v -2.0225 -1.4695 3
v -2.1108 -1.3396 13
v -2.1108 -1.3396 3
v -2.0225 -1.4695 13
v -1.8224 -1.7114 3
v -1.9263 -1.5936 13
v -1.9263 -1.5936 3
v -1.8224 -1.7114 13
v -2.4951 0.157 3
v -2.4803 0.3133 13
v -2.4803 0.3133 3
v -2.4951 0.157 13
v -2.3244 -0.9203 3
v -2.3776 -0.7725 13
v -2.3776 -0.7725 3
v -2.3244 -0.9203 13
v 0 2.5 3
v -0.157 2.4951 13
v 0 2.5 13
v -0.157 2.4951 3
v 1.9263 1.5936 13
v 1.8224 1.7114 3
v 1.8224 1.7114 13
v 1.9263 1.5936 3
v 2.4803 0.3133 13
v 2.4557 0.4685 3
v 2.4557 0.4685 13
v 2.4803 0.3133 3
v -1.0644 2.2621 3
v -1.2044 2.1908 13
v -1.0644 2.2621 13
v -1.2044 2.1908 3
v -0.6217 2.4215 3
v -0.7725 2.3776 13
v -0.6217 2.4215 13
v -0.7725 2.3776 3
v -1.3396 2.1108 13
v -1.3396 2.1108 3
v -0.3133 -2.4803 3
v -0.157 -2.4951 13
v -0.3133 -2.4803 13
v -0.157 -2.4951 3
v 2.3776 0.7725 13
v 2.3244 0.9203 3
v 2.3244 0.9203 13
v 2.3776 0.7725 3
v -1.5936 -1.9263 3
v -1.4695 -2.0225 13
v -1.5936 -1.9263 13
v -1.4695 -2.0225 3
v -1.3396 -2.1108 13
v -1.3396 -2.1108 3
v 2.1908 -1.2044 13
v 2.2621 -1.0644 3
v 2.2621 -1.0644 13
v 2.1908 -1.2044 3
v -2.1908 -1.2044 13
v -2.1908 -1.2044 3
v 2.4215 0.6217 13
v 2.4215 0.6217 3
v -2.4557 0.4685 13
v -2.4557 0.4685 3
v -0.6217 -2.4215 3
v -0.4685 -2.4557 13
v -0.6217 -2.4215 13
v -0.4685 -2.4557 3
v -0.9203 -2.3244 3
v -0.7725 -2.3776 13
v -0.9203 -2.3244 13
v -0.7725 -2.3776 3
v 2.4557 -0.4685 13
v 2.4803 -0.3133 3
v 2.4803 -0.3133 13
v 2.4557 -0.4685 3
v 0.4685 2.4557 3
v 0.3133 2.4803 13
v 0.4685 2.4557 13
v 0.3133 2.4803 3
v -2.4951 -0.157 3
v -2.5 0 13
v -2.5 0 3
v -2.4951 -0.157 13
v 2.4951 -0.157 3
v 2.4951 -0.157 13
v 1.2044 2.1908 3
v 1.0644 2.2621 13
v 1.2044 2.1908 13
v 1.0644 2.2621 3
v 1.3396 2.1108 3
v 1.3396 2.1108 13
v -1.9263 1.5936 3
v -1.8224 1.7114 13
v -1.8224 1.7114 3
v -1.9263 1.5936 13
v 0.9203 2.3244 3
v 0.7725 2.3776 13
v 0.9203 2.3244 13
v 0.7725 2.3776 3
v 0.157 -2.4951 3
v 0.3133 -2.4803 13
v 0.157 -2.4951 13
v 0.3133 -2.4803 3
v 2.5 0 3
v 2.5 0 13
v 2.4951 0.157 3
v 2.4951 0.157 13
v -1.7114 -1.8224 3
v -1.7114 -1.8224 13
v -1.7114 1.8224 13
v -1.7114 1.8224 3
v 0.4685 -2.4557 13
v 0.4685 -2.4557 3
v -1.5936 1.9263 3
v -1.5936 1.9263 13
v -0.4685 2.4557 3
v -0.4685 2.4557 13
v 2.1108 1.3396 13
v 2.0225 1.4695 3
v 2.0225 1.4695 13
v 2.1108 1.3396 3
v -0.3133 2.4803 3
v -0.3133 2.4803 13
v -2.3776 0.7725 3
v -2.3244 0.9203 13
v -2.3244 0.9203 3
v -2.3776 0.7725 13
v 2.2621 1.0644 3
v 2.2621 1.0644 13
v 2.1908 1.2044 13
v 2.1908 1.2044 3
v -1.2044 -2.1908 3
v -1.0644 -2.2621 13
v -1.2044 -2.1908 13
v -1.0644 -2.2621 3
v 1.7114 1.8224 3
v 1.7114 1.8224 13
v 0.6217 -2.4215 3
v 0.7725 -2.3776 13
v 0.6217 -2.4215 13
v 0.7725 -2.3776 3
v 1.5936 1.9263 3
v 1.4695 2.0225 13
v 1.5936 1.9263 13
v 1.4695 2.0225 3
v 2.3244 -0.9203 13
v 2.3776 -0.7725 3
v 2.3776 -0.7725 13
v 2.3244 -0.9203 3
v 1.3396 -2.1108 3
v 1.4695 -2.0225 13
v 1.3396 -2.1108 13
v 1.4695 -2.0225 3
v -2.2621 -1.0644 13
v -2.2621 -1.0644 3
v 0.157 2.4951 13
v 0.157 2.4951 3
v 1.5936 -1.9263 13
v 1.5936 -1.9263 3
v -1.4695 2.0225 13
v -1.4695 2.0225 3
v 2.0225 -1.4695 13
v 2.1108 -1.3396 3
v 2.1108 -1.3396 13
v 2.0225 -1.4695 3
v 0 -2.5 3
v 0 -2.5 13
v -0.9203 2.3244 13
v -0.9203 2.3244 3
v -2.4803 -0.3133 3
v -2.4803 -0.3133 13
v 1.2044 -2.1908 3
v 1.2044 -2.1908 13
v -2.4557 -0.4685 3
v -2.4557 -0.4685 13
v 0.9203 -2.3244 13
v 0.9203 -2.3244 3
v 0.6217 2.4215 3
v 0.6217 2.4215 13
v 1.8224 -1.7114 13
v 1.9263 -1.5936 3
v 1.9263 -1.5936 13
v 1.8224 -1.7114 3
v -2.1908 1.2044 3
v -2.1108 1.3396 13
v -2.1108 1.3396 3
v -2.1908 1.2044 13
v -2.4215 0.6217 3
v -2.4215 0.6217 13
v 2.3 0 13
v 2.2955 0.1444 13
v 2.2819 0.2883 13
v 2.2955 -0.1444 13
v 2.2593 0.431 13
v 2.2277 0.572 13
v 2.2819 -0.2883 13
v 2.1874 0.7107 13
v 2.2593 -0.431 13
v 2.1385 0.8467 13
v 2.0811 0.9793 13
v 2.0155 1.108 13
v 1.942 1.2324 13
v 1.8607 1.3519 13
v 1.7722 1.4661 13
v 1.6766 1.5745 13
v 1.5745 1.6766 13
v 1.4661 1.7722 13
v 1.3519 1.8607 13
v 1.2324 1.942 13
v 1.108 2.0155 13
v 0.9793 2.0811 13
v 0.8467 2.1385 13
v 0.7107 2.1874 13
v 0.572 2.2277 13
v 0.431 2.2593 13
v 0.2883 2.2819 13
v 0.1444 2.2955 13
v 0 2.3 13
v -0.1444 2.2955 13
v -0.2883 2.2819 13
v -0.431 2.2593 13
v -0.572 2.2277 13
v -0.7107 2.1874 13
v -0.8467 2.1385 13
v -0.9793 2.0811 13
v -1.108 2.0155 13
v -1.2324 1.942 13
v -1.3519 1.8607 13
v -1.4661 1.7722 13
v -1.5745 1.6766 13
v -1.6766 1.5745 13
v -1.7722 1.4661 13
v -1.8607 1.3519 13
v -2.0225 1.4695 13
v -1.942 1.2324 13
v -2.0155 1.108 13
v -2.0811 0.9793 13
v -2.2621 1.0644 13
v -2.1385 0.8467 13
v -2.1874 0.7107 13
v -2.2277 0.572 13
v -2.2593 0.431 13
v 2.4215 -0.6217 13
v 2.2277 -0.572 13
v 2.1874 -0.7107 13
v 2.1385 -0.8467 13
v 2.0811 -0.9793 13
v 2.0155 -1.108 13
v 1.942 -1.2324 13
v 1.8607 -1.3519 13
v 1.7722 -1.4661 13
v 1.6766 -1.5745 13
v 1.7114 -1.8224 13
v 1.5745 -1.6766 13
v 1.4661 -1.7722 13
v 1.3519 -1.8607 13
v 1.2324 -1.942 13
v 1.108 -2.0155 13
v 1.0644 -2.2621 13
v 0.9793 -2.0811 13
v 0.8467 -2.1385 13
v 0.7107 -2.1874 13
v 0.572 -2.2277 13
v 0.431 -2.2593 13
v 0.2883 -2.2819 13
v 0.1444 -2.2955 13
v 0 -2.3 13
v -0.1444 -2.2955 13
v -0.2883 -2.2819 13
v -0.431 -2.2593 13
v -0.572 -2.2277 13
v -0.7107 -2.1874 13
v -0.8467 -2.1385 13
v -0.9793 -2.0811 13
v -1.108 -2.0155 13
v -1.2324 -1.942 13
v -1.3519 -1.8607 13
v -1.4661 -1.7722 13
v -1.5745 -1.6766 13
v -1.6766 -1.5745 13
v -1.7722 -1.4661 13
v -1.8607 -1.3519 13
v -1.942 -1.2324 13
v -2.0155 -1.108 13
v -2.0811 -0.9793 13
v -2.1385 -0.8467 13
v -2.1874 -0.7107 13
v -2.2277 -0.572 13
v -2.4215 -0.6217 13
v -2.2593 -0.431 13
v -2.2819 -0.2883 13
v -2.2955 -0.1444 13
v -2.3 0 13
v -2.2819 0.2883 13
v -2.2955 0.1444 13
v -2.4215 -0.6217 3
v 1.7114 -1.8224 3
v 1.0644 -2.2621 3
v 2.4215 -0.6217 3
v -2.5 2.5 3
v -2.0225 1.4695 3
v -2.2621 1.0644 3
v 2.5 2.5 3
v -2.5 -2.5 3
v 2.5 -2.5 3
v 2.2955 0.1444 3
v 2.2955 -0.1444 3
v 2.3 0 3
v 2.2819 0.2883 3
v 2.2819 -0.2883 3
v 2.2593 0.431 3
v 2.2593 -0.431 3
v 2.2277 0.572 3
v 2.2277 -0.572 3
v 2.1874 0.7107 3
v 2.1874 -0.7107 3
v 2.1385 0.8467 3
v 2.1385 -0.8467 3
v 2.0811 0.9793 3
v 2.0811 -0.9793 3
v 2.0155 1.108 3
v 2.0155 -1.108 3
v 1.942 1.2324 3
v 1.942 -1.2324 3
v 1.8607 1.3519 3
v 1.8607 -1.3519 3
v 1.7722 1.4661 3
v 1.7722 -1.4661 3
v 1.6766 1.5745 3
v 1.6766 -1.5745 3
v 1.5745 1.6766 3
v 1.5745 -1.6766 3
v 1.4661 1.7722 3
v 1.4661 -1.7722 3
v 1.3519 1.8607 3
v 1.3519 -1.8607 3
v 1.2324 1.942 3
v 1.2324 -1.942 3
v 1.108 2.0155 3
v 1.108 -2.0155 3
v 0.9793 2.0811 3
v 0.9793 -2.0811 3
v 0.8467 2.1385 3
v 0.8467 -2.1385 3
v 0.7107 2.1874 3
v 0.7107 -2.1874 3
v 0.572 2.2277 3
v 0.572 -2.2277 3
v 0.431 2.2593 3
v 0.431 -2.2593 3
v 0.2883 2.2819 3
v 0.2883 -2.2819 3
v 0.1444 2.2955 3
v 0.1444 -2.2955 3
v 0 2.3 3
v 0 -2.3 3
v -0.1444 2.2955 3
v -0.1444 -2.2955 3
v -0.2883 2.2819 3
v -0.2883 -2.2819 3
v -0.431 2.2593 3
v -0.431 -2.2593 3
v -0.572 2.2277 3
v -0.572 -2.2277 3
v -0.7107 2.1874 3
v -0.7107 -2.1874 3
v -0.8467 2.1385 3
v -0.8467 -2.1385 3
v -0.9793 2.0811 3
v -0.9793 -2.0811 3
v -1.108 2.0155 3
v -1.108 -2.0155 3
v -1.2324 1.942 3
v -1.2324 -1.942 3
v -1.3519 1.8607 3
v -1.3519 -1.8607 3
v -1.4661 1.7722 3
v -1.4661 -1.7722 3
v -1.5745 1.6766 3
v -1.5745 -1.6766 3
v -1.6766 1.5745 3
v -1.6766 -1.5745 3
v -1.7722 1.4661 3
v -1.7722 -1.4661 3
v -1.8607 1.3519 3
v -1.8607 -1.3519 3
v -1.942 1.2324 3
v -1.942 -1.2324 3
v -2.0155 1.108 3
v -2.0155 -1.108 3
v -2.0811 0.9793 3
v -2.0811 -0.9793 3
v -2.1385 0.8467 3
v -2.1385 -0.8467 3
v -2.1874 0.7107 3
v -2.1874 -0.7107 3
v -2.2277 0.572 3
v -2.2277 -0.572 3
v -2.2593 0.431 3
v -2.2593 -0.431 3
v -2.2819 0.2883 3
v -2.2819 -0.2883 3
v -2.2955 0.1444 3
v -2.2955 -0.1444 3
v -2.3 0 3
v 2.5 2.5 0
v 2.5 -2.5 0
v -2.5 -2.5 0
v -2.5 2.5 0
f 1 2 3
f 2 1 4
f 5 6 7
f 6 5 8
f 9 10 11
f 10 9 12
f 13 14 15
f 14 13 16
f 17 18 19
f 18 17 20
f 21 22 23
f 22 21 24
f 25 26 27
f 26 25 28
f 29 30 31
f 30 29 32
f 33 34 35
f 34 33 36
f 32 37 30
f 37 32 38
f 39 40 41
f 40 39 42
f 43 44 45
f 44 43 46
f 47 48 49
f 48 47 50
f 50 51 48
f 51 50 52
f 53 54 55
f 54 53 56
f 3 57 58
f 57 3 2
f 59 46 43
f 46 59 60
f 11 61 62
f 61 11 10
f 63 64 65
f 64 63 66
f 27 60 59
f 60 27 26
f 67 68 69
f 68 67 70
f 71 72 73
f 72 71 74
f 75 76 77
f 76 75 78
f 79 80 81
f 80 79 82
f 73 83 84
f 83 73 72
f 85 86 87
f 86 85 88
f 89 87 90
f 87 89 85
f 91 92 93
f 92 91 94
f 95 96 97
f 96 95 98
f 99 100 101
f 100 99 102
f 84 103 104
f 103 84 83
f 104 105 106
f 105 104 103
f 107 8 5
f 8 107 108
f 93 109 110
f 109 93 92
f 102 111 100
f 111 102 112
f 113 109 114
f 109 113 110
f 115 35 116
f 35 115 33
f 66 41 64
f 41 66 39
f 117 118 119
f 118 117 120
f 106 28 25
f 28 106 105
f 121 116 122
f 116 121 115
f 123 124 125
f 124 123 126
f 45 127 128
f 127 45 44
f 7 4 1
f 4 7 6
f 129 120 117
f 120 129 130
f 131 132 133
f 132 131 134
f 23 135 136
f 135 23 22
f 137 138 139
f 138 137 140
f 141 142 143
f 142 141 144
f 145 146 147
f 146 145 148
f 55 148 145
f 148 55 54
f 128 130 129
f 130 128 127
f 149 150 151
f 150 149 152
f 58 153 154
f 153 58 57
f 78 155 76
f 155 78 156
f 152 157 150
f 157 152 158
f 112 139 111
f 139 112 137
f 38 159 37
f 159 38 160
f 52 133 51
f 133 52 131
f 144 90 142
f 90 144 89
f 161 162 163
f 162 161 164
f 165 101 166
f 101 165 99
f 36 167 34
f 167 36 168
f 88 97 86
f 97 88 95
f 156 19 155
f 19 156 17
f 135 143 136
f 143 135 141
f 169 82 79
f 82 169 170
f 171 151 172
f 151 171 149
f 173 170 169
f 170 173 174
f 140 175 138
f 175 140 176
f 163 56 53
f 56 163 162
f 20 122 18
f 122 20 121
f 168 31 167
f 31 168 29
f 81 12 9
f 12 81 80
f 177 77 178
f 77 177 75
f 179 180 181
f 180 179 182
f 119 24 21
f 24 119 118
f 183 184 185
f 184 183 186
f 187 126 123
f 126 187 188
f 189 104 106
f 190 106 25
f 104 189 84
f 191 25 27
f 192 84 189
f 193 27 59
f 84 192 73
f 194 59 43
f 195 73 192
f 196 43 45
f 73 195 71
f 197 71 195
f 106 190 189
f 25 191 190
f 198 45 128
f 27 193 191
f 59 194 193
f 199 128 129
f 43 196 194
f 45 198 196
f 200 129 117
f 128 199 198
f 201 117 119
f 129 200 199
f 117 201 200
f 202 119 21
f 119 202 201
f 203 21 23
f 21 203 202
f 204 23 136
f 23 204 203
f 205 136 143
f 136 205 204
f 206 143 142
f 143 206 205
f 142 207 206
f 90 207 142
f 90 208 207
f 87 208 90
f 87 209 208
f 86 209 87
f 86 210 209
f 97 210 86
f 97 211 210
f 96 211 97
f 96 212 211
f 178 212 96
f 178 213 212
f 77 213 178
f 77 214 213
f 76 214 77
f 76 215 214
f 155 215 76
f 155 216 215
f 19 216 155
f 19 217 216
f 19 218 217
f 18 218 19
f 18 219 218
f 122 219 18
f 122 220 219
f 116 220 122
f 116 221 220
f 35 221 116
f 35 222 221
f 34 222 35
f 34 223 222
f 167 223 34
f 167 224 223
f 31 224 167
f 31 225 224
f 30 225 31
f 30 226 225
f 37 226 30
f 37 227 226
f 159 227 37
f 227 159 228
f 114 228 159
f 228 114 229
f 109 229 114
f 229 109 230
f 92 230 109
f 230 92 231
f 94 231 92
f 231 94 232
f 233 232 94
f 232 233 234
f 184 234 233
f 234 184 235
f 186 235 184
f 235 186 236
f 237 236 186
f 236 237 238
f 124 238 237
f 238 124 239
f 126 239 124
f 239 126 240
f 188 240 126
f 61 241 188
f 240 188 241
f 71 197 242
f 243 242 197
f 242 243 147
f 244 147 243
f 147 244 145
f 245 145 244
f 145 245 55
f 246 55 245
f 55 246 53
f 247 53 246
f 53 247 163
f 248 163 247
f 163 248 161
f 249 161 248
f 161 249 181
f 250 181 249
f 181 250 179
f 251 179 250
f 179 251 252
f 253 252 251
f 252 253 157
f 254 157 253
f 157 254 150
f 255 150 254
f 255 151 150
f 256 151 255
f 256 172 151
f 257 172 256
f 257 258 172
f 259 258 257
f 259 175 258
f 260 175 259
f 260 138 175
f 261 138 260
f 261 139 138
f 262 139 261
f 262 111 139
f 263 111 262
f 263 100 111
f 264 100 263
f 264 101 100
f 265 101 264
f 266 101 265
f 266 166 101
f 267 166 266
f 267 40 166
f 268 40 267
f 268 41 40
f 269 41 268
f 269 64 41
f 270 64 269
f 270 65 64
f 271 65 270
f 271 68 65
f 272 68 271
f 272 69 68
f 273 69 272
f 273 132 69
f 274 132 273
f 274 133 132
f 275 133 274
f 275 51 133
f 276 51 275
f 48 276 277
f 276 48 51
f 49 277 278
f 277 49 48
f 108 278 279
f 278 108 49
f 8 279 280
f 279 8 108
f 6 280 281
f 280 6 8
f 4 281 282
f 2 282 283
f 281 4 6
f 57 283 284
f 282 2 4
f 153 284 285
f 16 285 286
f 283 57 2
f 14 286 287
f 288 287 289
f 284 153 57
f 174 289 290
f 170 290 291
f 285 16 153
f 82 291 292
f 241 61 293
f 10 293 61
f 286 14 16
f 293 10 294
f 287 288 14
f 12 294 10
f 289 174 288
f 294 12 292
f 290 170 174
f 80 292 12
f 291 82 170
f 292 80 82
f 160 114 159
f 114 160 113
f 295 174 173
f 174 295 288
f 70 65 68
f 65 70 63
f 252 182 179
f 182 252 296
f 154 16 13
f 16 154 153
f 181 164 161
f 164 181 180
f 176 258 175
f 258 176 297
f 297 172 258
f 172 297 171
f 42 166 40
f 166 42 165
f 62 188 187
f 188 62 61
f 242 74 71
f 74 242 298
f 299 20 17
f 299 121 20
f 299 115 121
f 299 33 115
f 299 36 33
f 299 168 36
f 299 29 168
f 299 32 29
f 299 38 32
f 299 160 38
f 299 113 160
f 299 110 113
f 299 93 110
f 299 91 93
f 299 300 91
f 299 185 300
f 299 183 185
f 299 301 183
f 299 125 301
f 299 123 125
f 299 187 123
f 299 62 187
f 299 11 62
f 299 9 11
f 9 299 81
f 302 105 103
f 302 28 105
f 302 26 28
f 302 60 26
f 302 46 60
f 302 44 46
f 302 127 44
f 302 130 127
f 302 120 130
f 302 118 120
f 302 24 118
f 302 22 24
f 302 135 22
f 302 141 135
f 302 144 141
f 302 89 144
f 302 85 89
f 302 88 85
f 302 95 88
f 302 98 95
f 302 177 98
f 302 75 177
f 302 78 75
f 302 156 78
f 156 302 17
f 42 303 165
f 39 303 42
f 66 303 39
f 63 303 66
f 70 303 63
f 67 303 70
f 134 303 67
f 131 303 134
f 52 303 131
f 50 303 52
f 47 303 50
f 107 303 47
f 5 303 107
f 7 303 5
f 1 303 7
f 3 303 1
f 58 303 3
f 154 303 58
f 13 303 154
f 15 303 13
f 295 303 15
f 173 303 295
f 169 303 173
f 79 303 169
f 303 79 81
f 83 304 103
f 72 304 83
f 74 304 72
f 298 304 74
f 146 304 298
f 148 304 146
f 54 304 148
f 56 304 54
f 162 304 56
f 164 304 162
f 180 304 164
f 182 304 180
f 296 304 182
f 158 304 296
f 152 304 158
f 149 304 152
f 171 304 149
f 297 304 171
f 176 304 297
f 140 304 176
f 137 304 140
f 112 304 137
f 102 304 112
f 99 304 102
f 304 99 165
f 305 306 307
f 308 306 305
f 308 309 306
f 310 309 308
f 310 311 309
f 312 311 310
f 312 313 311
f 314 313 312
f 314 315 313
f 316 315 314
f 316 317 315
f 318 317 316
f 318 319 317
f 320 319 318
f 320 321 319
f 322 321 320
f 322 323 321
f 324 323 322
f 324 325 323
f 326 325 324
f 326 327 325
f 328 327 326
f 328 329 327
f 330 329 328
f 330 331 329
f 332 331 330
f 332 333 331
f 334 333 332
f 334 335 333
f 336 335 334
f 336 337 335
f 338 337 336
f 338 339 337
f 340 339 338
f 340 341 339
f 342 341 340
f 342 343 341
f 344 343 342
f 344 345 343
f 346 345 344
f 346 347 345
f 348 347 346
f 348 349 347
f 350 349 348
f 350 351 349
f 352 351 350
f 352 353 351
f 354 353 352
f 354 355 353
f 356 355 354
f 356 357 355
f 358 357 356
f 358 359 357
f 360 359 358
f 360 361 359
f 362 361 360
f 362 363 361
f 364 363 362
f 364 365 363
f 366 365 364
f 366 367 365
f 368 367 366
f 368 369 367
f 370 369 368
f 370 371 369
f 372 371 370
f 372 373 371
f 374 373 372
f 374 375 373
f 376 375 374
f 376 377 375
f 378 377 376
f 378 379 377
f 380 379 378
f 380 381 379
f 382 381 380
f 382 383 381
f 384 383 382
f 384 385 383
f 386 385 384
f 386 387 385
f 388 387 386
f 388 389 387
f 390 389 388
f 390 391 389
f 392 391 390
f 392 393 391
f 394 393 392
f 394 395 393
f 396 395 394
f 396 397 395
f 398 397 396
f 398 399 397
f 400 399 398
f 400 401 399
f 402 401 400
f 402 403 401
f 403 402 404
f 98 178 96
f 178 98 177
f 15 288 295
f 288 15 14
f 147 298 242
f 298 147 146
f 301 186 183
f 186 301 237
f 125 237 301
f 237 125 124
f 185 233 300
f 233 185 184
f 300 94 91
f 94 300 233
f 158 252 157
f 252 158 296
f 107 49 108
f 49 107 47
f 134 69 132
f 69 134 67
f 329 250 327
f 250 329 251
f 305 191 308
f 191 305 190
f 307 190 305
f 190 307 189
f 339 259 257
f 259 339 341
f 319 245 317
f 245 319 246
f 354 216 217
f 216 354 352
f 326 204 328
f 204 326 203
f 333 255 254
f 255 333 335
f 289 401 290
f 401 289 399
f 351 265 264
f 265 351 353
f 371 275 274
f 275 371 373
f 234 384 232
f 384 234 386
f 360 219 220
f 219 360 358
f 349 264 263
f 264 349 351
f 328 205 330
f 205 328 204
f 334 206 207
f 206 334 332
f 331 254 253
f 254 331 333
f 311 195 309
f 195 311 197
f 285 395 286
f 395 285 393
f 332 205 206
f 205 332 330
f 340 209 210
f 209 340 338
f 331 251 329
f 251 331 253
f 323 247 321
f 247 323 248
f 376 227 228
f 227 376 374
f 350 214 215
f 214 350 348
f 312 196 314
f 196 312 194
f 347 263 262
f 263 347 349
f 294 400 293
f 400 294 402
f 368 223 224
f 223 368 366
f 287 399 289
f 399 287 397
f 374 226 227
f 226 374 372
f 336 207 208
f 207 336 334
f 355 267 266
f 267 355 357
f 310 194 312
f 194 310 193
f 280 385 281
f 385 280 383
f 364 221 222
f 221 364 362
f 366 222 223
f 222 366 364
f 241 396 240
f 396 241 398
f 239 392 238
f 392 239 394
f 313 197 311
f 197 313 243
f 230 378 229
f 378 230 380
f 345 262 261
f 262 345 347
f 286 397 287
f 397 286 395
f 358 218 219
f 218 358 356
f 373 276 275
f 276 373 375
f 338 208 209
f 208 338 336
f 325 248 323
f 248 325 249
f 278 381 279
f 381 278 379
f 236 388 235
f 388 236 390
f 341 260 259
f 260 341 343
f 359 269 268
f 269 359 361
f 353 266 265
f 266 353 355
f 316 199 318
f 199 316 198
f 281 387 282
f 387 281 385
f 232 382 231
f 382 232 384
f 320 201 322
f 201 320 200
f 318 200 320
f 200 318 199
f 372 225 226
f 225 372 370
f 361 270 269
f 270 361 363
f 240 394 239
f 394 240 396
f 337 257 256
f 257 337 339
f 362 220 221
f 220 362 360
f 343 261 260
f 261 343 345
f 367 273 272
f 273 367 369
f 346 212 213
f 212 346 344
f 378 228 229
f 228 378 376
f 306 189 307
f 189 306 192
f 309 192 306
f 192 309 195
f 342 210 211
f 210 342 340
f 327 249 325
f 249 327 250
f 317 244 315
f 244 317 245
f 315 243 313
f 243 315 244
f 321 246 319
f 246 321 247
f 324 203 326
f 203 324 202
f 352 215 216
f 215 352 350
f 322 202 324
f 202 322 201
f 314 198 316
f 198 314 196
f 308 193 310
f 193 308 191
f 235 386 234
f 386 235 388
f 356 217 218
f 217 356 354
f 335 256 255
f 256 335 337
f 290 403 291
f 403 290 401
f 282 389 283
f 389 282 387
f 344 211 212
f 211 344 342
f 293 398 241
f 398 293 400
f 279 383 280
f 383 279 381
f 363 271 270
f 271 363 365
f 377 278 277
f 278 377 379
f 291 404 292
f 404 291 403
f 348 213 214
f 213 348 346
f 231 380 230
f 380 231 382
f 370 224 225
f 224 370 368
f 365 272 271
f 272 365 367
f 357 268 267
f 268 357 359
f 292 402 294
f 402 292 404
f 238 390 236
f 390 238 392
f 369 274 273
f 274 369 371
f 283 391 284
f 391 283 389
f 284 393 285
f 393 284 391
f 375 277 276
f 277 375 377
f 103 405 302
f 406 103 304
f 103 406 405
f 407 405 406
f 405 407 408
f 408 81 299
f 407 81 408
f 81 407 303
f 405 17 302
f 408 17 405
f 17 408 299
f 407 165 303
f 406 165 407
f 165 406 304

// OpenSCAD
$fn=100;
translate([0,0,3])
difference() {
    cylinder(r=2.5, h=10);
    cylinder(r=2.3, h=10);
}
translate([-2.5,-2.5,0])
cube([5,5,3]);
